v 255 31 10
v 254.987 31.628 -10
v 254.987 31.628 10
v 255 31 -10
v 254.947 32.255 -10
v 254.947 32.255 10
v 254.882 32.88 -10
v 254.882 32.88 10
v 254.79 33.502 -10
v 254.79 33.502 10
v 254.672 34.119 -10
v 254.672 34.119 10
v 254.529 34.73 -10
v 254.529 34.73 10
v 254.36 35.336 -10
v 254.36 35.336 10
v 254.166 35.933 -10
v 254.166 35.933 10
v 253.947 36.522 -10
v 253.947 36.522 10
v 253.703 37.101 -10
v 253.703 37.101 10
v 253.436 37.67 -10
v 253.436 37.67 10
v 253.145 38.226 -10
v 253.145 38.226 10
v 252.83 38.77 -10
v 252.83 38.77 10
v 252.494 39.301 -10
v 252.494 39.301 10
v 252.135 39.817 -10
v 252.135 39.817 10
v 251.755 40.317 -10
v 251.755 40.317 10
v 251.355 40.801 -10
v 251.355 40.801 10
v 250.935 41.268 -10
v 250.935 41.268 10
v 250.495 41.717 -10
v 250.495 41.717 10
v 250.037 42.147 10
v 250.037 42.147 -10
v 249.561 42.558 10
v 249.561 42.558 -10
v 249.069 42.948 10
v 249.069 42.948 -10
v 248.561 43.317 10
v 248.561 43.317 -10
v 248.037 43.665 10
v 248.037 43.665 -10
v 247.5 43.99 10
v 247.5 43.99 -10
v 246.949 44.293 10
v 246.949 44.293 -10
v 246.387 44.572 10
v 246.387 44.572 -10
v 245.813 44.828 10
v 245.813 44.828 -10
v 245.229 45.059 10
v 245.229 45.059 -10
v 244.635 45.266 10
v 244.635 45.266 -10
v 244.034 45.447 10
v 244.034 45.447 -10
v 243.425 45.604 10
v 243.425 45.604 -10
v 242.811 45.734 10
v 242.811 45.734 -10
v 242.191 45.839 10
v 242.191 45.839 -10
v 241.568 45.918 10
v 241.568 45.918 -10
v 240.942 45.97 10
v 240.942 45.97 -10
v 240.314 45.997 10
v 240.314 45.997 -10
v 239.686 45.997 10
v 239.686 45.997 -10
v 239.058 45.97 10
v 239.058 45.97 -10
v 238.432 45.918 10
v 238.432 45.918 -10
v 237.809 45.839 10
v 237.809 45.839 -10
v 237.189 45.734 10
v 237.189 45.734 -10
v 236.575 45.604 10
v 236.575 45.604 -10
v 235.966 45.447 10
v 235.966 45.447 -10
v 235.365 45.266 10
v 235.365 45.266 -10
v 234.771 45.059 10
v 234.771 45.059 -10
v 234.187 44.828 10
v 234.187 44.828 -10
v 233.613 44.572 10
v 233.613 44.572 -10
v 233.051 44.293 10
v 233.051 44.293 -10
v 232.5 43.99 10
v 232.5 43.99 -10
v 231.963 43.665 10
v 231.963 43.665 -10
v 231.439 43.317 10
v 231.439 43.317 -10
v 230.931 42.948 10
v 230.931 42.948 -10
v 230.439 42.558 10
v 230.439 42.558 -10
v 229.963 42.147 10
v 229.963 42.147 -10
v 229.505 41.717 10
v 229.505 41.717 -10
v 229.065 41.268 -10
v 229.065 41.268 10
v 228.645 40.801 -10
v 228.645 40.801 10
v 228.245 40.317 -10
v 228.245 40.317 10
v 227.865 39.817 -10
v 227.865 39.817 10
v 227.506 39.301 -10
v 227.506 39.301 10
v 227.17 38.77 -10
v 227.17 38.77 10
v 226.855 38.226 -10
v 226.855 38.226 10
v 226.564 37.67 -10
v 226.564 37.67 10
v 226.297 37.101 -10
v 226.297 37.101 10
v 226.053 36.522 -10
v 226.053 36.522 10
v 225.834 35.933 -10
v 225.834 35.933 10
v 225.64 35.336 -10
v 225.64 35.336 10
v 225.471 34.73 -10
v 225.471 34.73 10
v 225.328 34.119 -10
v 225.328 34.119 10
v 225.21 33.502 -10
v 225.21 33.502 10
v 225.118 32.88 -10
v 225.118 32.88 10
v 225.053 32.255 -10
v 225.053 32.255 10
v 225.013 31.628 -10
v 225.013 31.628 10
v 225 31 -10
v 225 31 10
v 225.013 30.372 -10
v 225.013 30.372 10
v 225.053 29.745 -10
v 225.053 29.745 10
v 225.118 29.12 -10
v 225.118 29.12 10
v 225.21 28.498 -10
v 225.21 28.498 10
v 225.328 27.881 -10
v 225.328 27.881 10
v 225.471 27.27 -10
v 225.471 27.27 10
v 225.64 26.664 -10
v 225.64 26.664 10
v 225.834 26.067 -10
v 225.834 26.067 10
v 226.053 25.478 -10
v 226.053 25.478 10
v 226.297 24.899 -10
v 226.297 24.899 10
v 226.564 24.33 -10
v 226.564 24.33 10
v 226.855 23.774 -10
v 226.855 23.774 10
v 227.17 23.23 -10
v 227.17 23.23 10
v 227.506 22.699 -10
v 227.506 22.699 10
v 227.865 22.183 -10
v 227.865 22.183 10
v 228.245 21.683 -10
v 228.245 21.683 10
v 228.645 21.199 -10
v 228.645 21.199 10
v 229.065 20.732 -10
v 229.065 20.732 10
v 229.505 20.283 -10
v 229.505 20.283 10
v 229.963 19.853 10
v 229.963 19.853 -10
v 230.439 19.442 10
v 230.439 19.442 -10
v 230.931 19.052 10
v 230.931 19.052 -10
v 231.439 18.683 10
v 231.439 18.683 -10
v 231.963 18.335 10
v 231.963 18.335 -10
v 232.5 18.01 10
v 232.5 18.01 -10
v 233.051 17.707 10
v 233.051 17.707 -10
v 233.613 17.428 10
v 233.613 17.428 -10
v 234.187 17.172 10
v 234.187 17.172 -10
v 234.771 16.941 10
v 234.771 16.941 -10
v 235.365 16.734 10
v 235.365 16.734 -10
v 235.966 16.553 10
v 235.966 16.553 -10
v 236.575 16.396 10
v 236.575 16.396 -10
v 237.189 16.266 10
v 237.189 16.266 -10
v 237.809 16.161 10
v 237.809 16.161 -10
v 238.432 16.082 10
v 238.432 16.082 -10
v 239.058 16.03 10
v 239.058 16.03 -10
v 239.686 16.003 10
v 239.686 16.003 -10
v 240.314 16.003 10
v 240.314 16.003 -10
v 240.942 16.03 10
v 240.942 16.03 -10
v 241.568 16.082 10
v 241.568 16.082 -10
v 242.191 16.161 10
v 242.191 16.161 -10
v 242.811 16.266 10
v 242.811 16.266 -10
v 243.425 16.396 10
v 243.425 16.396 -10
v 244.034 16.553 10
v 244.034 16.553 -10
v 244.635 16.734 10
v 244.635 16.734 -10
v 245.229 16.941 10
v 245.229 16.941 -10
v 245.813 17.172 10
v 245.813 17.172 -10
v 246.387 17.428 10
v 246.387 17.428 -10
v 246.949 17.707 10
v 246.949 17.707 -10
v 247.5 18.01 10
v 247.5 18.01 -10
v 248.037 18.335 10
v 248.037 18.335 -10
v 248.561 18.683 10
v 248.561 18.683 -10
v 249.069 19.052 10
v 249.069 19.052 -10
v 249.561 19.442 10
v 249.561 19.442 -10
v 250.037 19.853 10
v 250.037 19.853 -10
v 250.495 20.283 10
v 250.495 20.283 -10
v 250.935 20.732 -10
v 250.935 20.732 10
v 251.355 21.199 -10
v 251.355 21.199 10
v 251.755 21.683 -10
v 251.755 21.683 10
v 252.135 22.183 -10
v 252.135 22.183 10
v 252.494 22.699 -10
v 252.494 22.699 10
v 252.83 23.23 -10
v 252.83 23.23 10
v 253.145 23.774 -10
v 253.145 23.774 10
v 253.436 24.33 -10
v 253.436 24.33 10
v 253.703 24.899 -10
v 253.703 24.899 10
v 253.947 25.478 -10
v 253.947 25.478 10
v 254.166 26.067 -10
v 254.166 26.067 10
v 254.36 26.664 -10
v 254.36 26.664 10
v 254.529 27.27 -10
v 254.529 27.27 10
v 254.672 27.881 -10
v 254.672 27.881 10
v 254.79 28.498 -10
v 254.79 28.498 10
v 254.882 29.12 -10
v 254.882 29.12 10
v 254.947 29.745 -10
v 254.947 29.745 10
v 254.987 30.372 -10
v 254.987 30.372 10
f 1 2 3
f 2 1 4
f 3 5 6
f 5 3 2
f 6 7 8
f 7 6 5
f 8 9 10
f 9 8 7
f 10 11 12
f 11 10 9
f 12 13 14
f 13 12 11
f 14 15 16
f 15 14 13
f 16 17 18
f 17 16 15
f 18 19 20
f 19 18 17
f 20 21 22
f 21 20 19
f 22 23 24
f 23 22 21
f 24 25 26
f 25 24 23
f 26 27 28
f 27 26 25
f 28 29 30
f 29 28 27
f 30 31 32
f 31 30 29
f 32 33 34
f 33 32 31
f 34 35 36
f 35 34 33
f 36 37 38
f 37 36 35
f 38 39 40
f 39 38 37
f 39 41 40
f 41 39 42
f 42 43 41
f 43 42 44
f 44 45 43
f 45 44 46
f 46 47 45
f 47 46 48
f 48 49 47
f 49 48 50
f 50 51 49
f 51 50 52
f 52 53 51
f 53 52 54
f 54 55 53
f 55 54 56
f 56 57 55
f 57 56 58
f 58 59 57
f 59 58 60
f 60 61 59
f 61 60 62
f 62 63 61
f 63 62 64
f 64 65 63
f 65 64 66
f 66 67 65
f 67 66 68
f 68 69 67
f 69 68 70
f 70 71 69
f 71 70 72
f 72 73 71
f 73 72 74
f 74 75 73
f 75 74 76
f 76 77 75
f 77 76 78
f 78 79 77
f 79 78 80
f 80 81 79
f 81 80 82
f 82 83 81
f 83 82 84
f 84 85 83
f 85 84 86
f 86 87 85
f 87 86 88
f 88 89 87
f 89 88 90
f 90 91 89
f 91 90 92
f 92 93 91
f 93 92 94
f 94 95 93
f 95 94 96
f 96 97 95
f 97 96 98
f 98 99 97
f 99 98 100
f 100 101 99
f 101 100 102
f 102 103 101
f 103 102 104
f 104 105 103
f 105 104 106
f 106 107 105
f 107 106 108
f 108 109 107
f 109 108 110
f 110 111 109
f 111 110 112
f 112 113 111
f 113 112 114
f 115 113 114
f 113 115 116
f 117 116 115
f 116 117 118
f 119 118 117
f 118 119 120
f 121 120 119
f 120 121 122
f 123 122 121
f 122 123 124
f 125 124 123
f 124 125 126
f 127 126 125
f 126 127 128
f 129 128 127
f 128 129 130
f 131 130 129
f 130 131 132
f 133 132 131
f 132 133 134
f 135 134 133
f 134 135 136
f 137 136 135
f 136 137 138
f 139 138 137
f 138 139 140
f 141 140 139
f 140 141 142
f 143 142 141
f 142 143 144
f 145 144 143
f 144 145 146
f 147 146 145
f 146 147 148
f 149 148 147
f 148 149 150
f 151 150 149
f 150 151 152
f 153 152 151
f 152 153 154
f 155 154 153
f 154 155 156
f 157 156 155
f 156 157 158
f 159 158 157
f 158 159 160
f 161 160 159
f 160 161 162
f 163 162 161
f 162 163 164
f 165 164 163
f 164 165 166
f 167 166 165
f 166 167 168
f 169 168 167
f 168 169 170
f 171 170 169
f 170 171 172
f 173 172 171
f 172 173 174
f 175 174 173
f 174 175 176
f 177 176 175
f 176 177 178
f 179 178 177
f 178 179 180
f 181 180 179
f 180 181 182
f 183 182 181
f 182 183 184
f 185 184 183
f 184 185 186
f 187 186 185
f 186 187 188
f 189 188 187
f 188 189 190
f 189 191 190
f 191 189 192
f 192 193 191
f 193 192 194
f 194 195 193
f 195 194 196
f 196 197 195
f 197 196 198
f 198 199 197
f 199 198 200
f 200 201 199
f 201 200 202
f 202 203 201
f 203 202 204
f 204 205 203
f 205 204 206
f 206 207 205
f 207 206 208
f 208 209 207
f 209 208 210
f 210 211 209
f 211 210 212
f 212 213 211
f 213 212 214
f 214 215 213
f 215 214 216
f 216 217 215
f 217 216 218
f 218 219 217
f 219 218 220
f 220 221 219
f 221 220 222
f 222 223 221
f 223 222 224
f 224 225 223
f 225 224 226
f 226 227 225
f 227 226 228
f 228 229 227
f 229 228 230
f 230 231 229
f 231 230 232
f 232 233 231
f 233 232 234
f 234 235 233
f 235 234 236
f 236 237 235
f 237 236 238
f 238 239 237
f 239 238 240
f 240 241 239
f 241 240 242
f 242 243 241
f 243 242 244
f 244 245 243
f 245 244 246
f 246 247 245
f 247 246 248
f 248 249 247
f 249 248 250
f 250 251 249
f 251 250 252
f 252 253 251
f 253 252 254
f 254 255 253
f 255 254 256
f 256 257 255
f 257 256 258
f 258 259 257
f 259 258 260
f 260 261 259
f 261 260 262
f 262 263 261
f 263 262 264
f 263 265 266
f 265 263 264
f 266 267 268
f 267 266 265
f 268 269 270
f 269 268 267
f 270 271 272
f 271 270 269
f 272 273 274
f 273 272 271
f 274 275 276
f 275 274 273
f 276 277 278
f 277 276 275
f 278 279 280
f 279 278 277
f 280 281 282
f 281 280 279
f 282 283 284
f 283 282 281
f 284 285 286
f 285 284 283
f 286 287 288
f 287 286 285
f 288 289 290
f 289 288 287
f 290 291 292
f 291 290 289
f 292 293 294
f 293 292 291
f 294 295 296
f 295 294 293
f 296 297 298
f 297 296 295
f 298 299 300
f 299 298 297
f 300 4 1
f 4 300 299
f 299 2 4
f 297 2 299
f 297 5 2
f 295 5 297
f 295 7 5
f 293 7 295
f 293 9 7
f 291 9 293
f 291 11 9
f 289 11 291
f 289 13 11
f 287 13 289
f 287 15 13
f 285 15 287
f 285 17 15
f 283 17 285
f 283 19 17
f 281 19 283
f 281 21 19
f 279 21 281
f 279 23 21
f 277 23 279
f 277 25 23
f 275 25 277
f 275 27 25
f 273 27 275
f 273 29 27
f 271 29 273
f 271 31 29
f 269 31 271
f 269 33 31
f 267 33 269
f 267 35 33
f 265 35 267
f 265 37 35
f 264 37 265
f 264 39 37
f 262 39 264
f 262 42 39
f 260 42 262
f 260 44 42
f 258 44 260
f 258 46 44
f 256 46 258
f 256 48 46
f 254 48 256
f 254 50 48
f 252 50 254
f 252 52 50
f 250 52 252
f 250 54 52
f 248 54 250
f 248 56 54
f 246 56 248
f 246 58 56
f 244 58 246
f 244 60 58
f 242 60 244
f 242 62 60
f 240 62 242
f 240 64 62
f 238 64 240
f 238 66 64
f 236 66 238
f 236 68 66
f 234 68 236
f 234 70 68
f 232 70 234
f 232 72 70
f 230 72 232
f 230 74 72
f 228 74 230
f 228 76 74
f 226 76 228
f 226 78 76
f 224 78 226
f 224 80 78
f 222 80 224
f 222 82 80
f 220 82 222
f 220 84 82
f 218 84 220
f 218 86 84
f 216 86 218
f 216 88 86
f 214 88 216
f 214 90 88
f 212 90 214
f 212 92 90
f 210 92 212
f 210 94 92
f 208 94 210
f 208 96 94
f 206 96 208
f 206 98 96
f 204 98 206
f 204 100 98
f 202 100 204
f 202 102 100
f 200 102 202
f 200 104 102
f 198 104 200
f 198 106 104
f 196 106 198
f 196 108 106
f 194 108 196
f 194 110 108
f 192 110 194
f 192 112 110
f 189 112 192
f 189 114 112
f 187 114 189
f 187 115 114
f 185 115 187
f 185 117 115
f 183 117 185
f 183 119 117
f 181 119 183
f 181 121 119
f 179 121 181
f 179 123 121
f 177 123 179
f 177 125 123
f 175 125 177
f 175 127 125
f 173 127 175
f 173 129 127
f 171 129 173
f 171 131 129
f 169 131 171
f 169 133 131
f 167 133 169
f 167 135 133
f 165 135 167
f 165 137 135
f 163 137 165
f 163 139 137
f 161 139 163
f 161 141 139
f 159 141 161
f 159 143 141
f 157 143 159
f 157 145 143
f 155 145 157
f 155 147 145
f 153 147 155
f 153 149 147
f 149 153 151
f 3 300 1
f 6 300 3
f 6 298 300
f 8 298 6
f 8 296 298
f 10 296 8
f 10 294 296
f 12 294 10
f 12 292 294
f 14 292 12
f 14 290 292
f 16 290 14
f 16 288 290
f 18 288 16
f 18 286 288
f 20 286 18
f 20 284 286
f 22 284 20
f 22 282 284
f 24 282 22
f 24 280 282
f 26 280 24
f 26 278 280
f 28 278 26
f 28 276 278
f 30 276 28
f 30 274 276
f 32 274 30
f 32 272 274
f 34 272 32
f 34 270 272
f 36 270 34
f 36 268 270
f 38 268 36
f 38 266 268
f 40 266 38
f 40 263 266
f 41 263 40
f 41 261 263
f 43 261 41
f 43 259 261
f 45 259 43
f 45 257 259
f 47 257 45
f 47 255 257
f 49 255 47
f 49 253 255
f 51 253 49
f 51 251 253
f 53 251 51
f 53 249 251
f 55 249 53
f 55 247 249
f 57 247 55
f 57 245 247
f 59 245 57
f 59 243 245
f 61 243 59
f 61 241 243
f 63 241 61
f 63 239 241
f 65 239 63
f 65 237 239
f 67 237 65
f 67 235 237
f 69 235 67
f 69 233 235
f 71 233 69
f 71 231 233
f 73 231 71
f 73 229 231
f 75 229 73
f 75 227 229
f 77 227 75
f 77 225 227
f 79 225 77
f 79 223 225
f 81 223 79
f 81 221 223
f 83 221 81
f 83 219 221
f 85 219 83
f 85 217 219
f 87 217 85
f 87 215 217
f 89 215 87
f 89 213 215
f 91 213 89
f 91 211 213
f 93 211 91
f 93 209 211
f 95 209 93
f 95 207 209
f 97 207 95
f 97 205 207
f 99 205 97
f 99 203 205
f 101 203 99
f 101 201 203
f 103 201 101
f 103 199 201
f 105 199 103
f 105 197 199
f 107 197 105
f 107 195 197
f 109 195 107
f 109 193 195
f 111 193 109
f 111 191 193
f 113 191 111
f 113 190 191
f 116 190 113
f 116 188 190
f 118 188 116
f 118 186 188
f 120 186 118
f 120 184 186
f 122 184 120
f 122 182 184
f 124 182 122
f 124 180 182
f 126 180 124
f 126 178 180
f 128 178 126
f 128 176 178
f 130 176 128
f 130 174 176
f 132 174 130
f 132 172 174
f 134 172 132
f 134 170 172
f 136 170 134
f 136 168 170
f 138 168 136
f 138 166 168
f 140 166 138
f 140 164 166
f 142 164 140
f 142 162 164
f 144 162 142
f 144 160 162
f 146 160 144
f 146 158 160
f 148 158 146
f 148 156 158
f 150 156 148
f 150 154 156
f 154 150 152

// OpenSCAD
$fn = 150;

translate([240, 31, 0])
rotate([0, 0, 0])
cylinder(20, 15, 15, true);
